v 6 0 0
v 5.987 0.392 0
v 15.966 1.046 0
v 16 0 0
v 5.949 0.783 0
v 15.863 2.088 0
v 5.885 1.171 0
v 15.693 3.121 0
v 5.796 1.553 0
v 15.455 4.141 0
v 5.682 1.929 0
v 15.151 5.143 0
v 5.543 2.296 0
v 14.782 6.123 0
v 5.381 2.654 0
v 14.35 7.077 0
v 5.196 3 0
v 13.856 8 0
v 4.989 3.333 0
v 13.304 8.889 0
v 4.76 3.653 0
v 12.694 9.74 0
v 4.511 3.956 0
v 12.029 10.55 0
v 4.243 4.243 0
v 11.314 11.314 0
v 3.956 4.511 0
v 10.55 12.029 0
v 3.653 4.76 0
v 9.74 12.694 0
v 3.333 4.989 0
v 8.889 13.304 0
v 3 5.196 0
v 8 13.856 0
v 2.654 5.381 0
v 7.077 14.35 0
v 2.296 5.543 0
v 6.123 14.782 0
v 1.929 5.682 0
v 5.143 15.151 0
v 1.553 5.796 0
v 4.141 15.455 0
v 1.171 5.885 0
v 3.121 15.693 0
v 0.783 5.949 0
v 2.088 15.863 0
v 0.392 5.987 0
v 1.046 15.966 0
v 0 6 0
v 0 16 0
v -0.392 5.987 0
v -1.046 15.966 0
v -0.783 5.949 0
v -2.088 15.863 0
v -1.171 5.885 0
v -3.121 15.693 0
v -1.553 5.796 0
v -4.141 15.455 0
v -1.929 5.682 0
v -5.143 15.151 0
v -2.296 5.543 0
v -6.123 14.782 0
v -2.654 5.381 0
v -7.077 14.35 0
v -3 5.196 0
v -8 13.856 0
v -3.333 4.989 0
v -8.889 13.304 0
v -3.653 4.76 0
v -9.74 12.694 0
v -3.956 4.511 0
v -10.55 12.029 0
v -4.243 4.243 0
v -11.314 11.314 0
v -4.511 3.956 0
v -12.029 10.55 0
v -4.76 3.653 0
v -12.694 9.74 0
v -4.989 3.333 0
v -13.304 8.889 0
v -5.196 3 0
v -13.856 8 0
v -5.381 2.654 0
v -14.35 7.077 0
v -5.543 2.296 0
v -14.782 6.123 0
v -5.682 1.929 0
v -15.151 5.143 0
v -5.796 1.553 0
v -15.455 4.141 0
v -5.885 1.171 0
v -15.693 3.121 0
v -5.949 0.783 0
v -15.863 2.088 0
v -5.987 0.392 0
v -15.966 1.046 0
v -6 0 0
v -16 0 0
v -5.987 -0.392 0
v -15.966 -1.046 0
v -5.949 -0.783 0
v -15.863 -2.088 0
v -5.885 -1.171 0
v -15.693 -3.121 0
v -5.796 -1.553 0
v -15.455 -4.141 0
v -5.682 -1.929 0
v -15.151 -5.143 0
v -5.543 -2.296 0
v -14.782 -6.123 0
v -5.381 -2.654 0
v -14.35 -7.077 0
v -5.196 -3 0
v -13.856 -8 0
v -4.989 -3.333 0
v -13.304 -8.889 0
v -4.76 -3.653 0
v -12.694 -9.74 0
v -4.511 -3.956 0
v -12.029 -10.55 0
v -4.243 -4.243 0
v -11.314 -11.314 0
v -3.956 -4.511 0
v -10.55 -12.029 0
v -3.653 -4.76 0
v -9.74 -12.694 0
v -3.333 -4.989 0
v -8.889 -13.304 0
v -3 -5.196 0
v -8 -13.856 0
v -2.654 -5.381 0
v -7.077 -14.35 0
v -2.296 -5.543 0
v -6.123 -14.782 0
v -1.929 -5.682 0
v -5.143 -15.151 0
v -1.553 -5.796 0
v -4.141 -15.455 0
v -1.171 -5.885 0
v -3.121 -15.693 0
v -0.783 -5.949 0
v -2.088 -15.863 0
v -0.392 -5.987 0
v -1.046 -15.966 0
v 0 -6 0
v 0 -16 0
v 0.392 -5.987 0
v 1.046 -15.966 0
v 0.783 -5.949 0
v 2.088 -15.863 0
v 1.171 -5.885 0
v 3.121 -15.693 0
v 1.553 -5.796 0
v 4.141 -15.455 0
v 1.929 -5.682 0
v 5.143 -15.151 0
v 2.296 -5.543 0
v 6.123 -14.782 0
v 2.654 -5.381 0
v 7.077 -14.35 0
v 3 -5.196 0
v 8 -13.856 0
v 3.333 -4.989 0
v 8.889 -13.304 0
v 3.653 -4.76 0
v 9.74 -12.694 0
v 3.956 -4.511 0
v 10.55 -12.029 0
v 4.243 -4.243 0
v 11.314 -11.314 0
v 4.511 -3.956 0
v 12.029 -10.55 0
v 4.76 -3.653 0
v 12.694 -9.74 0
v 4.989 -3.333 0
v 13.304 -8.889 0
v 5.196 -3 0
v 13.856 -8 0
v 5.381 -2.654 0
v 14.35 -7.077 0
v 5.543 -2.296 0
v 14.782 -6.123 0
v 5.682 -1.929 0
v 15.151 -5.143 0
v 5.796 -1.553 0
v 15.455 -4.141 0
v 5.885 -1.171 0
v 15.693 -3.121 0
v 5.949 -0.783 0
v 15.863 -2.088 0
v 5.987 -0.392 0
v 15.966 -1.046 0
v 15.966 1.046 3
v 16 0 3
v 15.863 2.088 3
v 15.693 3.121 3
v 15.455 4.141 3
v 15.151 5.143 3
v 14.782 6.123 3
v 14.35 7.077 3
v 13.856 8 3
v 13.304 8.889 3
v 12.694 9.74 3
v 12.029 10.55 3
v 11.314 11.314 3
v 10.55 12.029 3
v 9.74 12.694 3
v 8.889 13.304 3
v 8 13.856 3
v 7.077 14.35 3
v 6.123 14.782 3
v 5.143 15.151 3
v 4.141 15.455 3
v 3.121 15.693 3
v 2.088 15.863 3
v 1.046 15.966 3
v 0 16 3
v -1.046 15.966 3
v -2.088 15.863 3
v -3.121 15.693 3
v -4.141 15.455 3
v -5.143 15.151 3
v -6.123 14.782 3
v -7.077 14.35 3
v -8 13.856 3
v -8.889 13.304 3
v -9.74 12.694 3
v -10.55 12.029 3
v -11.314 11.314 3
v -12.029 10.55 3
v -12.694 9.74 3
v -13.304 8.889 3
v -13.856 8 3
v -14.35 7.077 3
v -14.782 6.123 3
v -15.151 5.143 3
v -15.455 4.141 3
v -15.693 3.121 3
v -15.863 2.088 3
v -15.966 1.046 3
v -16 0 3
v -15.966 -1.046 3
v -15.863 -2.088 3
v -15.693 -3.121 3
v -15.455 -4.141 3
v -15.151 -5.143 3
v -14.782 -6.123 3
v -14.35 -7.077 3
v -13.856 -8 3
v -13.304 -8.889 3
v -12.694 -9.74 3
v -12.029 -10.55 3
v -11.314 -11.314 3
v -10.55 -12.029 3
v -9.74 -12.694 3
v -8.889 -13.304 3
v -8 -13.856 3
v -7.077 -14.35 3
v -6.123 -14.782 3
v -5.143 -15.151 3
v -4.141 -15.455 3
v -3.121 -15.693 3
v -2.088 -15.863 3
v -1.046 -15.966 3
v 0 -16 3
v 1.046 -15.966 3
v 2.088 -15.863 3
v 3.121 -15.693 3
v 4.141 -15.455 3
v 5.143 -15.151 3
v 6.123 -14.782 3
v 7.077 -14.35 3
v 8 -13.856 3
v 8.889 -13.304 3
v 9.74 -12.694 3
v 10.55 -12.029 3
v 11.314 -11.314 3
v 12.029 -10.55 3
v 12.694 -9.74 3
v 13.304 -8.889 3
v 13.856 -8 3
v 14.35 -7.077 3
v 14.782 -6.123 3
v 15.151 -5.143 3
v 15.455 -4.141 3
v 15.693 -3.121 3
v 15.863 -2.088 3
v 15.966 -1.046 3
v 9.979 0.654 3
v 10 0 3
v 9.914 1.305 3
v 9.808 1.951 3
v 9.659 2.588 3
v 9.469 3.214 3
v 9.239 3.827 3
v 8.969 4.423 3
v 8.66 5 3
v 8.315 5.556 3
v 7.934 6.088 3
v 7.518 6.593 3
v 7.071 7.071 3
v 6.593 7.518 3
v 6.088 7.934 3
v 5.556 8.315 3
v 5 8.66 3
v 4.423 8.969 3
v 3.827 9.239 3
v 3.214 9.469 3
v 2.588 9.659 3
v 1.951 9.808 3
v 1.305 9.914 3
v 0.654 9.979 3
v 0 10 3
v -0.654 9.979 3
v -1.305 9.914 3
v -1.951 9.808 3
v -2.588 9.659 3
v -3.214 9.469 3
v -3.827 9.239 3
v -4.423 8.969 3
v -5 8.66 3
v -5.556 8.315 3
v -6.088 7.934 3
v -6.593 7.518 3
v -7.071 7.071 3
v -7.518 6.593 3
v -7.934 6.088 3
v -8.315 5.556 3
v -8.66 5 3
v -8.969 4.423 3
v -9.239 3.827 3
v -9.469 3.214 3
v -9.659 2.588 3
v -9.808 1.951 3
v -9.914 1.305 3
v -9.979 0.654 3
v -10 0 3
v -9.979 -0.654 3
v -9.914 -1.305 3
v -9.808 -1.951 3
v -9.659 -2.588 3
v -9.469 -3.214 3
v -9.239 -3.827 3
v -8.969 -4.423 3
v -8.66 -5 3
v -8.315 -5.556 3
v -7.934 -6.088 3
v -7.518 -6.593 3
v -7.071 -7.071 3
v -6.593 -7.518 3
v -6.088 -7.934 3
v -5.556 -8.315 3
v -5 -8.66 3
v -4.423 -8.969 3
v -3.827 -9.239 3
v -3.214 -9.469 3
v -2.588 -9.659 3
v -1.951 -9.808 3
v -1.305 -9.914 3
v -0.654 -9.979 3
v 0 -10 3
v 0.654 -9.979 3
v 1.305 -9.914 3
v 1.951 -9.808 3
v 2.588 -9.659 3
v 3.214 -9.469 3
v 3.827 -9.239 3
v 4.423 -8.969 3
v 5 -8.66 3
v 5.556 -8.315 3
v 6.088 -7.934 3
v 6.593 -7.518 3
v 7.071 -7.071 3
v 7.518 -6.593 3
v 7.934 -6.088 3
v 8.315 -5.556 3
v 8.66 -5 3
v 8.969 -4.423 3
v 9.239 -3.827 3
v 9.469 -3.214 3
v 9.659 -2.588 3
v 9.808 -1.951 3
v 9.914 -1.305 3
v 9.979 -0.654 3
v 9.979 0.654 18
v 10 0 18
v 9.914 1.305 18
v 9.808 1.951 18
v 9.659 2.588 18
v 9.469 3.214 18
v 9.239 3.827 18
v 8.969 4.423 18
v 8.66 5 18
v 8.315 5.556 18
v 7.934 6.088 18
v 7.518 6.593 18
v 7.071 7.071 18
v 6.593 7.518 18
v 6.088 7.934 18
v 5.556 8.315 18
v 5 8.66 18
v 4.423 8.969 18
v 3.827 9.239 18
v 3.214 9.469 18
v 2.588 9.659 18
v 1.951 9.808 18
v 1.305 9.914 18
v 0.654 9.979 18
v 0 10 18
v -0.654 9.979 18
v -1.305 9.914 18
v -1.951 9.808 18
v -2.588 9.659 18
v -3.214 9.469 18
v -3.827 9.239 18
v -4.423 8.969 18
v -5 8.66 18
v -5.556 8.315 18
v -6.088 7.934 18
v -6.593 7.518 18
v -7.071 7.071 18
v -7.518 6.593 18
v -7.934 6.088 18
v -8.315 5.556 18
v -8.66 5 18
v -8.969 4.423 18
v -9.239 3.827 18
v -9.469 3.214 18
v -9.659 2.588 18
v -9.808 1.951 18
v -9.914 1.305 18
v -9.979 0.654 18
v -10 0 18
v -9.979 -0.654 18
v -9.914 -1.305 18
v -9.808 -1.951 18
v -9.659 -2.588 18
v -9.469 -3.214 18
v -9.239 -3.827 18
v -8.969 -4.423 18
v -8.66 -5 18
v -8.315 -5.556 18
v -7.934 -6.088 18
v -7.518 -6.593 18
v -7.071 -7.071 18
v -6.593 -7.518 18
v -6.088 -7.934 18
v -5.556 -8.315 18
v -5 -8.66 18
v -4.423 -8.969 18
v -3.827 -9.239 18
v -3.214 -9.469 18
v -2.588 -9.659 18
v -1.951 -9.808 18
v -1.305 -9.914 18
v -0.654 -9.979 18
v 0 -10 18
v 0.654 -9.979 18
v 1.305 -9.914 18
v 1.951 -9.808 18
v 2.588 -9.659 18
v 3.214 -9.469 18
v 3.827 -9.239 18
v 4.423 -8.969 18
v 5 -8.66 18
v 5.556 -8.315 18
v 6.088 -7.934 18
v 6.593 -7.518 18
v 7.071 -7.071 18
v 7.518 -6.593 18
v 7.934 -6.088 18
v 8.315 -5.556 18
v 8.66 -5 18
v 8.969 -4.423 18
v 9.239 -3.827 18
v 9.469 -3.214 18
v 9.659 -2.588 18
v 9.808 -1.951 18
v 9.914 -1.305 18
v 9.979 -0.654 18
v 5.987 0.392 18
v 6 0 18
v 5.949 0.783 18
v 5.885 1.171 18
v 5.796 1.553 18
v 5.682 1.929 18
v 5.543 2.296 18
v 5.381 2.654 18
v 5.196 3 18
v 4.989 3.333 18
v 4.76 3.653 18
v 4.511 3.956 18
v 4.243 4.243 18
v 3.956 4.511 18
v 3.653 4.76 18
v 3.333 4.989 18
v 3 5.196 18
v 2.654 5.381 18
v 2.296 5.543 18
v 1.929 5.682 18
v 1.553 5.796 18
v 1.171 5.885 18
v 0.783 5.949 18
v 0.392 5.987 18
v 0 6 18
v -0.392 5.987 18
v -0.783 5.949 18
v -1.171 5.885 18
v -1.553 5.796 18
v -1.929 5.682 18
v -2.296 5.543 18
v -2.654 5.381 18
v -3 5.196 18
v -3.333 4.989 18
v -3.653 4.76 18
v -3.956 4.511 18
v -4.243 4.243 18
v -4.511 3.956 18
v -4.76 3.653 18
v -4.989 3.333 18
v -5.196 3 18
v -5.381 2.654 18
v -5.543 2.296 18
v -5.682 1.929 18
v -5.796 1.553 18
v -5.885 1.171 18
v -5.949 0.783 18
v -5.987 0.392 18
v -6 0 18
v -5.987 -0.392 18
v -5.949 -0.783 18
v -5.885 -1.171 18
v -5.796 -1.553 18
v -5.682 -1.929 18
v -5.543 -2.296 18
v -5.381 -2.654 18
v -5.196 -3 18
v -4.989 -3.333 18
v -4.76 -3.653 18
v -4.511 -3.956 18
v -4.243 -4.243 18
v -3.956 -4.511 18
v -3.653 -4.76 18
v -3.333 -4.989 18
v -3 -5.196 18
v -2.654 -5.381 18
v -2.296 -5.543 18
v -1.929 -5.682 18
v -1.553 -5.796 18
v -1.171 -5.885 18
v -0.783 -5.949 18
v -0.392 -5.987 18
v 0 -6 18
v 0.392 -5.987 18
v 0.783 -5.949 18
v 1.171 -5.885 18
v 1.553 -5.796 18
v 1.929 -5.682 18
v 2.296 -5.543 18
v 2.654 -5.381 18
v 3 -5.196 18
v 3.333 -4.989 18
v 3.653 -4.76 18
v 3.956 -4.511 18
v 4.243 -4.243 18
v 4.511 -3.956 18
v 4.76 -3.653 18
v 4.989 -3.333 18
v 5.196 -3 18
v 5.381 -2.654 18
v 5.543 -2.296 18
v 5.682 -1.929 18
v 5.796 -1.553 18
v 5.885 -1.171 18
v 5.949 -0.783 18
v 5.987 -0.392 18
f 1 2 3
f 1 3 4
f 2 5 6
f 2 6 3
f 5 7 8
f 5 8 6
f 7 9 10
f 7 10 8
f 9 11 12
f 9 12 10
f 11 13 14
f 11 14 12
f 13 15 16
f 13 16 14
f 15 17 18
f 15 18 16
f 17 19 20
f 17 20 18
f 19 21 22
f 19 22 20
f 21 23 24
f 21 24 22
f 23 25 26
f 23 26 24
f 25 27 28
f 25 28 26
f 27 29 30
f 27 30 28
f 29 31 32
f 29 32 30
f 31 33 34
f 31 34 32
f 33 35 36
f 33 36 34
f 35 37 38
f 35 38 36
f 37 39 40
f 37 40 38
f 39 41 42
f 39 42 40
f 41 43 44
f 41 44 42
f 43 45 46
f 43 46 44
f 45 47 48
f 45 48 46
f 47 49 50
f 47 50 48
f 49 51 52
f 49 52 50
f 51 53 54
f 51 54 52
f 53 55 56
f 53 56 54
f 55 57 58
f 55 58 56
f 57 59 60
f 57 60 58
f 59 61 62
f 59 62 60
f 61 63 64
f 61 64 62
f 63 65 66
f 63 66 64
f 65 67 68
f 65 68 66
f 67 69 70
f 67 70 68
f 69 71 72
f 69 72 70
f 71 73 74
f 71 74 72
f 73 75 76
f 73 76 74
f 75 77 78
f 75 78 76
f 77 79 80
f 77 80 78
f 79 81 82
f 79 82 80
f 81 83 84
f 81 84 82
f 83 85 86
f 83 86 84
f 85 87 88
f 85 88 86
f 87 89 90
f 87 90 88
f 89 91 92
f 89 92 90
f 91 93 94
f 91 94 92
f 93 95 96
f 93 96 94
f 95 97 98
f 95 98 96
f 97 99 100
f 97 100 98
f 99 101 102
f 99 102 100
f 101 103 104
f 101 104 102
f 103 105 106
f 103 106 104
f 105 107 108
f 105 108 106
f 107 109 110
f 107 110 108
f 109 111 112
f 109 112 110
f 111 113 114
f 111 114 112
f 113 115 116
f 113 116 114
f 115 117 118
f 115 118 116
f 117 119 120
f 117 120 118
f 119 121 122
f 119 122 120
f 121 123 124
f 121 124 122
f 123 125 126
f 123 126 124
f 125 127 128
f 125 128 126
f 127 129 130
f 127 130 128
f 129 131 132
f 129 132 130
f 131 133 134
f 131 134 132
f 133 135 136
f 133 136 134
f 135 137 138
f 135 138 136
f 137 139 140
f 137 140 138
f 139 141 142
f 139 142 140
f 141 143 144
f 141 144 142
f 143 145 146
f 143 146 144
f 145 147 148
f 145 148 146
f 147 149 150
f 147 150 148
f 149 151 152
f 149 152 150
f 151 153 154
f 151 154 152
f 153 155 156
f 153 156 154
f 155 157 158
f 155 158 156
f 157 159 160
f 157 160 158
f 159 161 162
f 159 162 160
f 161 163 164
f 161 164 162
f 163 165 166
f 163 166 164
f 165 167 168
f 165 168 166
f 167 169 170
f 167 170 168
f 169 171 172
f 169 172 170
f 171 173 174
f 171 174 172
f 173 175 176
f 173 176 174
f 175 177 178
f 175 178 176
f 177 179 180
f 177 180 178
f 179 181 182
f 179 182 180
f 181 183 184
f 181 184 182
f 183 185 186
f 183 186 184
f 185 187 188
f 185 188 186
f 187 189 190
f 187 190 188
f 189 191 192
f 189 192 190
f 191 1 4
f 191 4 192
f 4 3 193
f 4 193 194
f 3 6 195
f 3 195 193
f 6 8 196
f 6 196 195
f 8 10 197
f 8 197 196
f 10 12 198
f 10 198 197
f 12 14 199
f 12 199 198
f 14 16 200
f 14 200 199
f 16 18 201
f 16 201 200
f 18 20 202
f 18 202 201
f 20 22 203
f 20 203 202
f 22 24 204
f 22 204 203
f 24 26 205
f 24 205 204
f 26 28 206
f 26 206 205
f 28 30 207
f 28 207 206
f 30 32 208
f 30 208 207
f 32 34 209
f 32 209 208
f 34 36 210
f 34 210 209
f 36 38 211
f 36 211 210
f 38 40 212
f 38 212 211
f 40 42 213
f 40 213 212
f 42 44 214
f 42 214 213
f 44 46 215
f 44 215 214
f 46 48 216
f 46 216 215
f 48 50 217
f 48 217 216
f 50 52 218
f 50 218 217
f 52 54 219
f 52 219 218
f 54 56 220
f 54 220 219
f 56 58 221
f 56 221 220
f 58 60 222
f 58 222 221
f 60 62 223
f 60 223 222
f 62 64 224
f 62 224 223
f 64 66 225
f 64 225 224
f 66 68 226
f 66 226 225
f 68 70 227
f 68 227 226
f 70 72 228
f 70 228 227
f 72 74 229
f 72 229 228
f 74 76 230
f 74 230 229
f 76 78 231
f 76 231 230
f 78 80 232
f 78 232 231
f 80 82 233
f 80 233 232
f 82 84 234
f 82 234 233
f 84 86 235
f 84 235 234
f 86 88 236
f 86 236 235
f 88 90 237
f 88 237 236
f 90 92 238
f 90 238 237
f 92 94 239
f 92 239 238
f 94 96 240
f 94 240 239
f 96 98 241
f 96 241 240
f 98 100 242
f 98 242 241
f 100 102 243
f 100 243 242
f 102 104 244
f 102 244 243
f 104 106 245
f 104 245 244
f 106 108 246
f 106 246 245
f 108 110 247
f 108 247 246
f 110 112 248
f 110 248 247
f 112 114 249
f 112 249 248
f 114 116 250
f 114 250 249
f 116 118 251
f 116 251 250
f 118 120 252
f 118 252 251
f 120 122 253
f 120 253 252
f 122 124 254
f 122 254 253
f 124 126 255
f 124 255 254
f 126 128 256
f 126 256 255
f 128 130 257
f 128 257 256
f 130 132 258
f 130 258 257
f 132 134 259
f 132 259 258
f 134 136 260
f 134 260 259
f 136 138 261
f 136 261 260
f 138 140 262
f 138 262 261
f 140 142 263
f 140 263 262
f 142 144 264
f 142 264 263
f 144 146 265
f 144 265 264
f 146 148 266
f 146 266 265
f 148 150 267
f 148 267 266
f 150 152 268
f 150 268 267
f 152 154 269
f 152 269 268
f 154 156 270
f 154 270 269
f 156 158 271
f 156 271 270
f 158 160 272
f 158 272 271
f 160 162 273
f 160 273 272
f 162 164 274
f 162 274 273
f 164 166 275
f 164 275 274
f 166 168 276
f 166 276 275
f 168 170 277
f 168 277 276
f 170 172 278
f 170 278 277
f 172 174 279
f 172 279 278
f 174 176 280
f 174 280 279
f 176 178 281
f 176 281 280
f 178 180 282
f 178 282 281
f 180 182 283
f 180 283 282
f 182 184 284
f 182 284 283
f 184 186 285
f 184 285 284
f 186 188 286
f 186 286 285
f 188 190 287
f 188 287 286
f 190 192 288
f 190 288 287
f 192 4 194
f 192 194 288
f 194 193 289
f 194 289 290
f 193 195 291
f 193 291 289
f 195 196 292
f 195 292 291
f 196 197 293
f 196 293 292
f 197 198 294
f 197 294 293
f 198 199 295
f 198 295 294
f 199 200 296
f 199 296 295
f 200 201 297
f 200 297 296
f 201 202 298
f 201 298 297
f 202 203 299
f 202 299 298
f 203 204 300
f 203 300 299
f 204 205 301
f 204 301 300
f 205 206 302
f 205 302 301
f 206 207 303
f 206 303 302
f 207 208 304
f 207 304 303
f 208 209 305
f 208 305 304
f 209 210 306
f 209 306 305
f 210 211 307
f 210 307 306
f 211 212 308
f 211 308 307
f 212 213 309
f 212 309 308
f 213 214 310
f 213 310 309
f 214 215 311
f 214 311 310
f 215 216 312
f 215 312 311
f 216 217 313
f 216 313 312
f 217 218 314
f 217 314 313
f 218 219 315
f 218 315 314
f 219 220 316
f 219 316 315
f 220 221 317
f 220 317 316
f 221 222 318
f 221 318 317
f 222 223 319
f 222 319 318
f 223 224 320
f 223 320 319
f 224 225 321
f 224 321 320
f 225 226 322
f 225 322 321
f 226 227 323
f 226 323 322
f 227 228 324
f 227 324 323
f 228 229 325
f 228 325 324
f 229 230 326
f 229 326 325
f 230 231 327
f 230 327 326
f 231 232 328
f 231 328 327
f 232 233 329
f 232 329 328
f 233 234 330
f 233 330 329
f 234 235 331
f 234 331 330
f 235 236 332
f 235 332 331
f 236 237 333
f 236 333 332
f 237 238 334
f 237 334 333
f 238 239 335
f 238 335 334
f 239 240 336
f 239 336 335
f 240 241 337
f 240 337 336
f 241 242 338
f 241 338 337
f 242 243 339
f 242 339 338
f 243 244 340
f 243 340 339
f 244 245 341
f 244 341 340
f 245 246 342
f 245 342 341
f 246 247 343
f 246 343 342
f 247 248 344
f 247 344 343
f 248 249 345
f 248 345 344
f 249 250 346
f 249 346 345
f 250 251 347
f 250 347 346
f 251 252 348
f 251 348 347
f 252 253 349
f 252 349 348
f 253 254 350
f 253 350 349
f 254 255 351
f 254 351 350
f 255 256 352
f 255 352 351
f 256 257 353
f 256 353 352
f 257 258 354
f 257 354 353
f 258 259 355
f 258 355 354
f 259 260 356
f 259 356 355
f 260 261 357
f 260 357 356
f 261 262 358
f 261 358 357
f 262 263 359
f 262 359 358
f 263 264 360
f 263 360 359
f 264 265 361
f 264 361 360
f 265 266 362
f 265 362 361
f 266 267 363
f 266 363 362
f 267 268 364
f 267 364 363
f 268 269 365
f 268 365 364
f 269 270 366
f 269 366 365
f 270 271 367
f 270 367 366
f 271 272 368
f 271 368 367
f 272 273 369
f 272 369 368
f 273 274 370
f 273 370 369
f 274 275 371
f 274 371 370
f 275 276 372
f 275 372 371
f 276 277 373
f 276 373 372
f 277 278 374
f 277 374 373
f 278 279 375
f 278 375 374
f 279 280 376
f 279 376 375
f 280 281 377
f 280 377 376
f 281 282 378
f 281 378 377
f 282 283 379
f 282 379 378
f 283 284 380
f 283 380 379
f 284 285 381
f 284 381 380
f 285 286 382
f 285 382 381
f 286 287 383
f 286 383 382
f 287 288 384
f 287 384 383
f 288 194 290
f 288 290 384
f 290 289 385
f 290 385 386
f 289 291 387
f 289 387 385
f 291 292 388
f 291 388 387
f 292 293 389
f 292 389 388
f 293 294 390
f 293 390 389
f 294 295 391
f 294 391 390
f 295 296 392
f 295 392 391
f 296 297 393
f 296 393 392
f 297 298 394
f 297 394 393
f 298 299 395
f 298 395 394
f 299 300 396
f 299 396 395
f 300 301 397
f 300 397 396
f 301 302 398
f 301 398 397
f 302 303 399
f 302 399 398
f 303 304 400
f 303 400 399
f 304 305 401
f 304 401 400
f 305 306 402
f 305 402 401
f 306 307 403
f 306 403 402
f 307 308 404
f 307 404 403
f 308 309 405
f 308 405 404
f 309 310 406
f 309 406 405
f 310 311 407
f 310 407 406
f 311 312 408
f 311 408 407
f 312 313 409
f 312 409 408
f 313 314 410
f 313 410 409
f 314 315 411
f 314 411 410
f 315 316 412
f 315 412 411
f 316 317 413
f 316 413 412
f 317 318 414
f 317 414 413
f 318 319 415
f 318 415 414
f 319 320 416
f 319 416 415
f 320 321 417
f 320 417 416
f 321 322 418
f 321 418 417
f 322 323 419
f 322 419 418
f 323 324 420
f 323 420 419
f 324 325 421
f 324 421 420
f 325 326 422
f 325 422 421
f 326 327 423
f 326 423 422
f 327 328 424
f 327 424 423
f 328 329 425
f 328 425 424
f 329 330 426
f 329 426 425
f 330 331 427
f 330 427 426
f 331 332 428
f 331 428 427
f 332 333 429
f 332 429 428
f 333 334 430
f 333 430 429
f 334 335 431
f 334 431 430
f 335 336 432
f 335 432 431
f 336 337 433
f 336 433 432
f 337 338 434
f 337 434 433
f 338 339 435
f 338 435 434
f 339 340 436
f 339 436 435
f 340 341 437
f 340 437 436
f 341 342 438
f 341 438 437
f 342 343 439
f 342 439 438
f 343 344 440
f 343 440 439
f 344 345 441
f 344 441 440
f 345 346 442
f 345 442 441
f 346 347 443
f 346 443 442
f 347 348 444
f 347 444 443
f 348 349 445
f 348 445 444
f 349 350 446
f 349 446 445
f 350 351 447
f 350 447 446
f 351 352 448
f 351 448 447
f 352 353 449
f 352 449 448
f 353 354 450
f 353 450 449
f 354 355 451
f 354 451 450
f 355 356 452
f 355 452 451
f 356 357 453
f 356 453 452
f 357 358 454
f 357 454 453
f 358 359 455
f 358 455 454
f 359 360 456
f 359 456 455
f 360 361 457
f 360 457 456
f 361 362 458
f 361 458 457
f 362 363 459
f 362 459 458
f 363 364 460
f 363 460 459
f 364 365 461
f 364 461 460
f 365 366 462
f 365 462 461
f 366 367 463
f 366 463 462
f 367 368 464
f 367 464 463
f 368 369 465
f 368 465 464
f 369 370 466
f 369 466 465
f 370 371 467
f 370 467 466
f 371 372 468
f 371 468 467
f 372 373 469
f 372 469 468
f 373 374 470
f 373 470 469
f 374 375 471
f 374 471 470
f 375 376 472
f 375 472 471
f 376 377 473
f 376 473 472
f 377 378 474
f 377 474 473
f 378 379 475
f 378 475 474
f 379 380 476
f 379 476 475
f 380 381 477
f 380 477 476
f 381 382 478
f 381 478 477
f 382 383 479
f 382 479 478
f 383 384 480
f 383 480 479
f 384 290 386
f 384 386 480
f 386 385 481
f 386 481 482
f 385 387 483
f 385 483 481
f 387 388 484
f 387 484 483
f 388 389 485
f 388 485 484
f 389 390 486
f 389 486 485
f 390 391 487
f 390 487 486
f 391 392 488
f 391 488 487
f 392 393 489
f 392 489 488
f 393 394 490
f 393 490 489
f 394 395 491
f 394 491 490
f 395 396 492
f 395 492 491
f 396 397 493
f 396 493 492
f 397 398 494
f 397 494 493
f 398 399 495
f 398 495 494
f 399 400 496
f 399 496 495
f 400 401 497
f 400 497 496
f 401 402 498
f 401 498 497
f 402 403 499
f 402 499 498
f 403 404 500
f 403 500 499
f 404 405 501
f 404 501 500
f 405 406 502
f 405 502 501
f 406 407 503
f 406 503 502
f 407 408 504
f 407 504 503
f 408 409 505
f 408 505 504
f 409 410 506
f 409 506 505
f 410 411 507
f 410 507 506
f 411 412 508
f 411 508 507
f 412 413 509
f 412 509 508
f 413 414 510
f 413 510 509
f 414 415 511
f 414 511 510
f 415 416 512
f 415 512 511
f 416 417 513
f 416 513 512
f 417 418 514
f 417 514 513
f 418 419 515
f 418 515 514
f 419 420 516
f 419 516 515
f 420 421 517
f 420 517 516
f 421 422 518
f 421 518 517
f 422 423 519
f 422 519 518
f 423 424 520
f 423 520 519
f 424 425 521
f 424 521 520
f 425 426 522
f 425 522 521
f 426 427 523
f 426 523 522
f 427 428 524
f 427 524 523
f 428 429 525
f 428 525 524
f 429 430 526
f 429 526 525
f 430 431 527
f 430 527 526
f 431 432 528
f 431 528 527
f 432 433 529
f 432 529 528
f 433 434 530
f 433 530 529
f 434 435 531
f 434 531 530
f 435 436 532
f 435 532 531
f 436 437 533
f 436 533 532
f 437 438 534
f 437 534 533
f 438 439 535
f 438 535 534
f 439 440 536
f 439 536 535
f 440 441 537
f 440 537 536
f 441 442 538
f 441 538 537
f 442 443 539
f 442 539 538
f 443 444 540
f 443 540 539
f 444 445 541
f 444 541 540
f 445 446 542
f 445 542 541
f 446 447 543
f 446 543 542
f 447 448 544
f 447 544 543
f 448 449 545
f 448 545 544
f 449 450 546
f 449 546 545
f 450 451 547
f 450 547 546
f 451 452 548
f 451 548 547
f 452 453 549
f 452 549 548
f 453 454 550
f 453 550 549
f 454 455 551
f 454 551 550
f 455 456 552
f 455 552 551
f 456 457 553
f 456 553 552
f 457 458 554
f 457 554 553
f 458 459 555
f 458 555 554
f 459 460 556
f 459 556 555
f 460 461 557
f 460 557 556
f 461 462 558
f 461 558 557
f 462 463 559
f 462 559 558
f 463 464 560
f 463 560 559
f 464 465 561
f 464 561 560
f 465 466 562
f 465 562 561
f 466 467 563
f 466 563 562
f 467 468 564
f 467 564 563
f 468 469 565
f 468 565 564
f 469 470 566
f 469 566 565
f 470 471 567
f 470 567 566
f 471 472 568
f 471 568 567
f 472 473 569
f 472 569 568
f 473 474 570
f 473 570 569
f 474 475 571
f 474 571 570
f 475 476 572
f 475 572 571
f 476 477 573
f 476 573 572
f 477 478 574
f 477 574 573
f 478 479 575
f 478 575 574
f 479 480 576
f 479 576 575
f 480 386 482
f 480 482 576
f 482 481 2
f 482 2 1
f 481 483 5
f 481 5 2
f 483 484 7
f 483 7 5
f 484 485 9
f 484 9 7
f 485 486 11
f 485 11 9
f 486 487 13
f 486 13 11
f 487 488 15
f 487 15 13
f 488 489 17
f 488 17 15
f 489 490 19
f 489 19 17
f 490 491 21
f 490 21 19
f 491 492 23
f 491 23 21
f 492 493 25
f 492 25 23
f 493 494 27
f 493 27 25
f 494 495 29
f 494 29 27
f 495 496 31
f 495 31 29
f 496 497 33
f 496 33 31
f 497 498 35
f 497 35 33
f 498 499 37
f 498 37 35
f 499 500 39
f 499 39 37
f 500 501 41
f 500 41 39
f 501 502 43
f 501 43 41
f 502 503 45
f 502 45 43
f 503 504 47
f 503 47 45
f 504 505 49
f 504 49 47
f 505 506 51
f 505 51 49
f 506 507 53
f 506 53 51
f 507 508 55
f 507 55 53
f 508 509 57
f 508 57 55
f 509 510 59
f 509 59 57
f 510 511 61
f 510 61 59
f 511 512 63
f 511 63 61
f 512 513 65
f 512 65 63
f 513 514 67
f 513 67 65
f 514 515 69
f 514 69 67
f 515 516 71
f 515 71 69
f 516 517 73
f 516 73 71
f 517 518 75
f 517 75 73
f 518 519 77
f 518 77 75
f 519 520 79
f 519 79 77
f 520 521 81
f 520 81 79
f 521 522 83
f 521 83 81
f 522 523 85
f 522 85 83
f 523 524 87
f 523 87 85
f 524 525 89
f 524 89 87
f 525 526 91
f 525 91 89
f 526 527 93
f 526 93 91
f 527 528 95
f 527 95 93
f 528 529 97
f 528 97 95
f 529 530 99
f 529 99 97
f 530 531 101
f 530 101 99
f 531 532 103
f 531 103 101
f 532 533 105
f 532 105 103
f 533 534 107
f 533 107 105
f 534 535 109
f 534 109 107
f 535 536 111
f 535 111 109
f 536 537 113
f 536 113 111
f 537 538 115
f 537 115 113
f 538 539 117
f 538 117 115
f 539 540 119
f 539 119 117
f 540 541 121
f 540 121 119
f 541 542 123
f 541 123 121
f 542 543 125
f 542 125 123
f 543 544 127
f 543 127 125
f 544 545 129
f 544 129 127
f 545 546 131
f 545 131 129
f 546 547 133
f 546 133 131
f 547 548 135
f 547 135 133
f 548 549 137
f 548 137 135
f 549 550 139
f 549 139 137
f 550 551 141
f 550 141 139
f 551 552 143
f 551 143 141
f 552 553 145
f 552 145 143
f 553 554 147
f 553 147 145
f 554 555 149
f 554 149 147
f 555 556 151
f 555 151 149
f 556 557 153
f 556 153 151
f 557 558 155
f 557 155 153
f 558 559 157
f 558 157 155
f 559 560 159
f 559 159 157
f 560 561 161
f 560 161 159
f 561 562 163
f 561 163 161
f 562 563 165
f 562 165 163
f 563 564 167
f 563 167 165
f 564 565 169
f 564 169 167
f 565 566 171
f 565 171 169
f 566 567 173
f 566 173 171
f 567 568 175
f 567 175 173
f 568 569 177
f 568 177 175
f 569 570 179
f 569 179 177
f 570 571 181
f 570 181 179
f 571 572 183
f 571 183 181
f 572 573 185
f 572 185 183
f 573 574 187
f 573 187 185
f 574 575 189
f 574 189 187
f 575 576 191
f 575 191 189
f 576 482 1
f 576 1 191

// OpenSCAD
// Original MechIntel educational model. CC0-1.0. Units: mm.
// Not a standardized or load-rated component.
$fn=96;
// Section points: [radius, height], mm. Edit to change the profile.
section=[[6, 0], [16, 0], [16, 3], [10, 3], [10, 18], [6, 18]];
rotate_extrude($fn=96) polygon(points=section);
